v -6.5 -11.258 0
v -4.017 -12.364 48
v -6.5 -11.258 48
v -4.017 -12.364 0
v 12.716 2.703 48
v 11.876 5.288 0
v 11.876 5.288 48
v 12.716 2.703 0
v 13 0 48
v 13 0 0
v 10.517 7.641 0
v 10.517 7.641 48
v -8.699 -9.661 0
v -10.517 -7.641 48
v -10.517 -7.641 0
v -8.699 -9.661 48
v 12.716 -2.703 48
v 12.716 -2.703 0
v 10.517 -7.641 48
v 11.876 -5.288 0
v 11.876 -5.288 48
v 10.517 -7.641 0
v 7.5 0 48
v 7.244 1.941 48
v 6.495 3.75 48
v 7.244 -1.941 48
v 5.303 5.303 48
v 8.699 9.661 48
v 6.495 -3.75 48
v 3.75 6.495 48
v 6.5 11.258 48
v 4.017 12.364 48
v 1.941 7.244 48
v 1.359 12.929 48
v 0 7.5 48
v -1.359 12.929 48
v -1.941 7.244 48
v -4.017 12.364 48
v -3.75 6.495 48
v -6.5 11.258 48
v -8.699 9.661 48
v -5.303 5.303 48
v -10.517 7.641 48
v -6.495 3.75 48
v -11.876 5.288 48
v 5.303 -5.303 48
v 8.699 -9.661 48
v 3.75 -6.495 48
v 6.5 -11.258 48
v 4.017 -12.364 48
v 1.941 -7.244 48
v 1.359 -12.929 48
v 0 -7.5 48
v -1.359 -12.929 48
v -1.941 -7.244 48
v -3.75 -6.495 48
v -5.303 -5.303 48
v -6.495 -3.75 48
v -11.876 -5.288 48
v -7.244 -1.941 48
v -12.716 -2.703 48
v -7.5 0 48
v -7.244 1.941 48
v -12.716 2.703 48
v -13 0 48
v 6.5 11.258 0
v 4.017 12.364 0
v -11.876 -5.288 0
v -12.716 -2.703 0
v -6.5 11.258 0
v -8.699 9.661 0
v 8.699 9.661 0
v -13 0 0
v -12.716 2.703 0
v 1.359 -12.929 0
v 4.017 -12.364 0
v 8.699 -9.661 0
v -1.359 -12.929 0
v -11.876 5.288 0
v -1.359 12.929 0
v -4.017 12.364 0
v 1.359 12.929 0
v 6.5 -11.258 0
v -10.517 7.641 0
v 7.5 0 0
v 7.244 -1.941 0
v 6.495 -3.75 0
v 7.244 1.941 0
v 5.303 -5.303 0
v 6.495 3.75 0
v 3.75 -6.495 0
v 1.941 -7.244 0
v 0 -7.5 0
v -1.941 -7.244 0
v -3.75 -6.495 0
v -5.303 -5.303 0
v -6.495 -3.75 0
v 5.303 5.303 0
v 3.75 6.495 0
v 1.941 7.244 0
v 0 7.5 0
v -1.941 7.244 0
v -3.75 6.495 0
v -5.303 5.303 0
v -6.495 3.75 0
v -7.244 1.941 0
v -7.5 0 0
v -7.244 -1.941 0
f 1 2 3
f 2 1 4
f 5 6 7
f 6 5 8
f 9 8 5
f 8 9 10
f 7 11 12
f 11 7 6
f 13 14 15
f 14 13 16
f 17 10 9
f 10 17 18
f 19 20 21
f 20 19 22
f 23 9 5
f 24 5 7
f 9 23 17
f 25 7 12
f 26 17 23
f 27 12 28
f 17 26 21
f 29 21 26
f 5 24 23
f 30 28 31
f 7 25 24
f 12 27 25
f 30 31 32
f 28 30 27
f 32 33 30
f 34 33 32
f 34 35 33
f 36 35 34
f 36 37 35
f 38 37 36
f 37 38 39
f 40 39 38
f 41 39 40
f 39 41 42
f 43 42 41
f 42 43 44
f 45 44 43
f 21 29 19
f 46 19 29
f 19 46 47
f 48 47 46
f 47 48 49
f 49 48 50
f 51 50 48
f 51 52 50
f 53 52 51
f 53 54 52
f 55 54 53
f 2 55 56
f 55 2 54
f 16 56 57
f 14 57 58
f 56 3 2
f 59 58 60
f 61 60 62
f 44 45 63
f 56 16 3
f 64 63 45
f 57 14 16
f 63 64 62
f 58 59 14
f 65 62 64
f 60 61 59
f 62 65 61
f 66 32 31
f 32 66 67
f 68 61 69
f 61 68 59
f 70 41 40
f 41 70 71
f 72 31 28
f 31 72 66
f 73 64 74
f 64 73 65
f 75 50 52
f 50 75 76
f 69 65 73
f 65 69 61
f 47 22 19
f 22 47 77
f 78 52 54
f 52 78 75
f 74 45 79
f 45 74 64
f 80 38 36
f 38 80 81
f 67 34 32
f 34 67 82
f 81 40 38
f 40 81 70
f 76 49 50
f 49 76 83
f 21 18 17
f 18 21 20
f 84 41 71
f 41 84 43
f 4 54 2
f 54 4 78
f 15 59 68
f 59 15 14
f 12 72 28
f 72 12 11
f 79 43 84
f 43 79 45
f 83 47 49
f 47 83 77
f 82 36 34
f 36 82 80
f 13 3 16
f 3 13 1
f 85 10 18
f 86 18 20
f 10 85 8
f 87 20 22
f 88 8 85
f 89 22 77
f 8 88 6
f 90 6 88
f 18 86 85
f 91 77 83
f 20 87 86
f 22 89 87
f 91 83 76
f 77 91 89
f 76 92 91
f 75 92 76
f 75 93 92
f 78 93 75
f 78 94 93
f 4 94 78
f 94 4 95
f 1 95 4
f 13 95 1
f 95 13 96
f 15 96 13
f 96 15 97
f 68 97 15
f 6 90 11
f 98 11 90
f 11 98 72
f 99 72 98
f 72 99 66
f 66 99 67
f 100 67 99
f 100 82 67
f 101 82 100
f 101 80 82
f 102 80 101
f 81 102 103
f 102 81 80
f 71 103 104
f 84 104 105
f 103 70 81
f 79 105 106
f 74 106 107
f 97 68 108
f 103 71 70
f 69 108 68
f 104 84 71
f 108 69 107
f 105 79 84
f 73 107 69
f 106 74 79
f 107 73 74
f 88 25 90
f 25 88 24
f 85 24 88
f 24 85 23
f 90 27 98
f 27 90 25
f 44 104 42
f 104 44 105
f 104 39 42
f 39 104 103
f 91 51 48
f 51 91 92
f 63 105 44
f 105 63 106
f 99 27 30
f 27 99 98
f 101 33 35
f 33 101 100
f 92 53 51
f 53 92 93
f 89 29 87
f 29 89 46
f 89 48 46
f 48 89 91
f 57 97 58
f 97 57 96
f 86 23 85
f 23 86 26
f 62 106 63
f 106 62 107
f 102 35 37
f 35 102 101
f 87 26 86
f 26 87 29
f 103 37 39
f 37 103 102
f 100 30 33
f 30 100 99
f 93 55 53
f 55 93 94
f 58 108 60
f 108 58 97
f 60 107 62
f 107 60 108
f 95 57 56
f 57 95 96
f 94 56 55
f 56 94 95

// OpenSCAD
// Battery_AAtoC_adapter.scad
//
// AA cell: 14.5 x 50.5mm
// C  cell: 26.2 x 50
//
// [https://en.wikipedia.org/wiki/List_of_battery_sizes]
//

delta = 0.01 ;

module battery_AA_to_C() {
	difference() {
        cylinder(d=26, h=48) ;
        translate([0,0,-delta])
            cylinder(d=15, h=48+2*delta) ;
	}
}

battery_AA_to_C() ;
